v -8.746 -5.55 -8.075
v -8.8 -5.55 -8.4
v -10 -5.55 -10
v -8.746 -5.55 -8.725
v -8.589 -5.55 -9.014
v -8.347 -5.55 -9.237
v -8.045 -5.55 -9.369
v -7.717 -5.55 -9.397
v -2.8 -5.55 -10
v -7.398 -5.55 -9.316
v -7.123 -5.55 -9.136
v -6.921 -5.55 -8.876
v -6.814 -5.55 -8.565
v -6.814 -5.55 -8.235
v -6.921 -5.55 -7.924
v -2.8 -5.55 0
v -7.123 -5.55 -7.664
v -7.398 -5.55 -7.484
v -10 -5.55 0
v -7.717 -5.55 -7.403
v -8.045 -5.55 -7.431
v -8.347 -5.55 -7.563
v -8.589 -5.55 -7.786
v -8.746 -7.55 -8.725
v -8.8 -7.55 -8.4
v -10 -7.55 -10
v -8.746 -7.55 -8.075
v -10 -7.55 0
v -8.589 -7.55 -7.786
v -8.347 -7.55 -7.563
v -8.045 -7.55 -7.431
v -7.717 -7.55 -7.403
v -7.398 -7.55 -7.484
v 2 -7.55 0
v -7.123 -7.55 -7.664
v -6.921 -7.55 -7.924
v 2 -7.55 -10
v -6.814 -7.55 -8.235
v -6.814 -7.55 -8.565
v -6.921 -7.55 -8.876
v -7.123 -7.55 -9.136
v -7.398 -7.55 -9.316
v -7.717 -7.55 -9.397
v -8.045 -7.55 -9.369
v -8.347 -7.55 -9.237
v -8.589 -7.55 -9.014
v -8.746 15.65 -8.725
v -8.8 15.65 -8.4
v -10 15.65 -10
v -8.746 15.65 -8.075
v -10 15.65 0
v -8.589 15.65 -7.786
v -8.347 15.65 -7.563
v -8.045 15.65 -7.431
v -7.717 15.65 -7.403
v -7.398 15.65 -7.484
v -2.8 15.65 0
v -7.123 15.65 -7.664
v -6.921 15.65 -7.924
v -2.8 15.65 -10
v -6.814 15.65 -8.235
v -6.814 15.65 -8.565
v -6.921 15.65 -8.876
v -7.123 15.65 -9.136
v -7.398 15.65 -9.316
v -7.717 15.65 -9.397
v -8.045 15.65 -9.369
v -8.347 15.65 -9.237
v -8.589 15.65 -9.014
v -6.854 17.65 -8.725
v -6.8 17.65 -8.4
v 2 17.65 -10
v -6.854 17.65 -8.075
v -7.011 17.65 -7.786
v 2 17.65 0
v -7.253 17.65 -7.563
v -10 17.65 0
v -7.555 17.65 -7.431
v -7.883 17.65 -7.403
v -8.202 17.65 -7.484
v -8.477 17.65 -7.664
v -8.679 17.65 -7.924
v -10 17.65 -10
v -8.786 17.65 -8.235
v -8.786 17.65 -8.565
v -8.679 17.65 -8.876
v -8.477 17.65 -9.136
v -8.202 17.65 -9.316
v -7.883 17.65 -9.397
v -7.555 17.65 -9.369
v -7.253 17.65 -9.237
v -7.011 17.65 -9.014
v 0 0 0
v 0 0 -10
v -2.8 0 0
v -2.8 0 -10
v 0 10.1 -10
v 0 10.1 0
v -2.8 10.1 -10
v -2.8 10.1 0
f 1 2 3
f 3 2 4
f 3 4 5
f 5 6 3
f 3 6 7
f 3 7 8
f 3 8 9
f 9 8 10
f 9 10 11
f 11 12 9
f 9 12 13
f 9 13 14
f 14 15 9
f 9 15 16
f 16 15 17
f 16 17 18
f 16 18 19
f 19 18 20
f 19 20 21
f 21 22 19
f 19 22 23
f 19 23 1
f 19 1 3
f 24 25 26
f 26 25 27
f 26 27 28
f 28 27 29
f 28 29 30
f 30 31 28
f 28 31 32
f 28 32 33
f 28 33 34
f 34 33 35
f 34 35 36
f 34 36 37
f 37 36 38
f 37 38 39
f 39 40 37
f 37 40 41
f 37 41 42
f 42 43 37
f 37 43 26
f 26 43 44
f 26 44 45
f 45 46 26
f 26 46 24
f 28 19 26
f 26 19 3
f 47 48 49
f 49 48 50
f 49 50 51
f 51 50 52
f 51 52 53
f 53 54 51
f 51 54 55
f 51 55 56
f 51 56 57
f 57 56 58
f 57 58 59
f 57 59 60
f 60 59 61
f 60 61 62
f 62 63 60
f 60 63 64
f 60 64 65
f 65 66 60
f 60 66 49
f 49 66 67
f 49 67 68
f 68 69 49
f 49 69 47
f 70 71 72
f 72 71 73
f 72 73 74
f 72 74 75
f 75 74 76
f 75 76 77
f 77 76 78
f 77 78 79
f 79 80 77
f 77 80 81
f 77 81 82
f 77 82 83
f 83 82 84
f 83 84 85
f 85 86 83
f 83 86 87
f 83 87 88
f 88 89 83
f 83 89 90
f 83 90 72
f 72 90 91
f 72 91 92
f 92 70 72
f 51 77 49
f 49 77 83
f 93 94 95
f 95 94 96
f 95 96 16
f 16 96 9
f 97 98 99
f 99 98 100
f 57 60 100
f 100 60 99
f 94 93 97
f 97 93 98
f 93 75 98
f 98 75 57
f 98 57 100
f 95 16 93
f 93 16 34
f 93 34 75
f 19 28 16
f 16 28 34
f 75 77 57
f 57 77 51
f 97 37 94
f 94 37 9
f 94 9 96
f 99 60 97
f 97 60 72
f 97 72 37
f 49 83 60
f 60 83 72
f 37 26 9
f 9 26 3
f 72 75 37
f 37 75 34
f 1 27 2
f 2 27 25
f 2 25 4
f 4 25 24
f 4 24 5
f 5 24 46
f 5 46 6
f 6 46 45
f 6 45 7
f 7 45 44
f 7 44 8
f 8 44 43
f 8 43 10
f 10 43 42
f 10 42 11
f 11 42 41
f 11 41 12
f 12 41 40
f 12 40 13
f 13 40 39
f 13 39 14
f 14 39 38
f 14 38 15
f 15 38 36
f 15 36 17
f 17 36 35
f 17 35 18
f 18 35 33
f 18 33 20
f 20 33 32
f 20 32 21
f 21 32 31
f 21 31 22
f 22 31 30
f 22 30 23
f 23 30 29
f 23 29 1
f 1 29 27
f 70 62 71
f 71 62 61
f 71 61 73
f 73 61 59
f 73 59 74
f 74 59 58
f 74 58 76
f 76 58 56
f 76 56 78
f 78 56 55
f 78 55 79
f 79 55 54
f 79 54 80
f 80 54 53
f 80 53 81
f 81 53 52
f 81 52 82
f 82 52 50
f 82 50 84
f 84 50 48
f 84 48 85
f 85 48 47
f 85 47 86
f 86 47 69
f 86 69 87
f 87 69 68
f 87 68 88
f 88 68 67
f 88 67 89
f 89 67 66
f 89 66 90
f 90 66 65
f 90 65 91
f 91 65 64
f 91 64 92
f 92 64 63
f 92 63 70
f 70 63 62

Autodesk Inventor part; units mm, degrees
ref_plane "YZ Plane" through (0, 0, 0) normal (1, 0, 0) x (0, 1, 0)
ref_plane "XZ Plane" through (0, 0, 0) normal (0, 1, 0) x (-1, 0, 0)
ref_plane "XY Plane" through (0, 0, 0) normal (0, 0, 1) x (1, 0, 0)
sketch "Sketch1" plane through (0, 0, 0) normal (1, 0, 0) x (0, 1, 0)
  line L0 (0, 0) -> (10.1, 0)
  line L1 (10.1, 0) -> (10.1, -10)
  line L2 (10.1, -10) -> (0, -10)
  line L3 (0, -10) -> (0, 0)
  line L4 (10.1, 0) -> (15.65, 0)
  line L5 (15.65, 0) -> (15.65, -10)
  line L6 (15.65, -10) -> (10.1, -10)
  line L7 (10.1, -10) -> (10.1, 0)
  line L8 (0, 0) -> (-5.55, 0)
  line L9 (-5.55, 0) -> (-5.55, -10)
  line L10 (-5.55, -10) -> (0, -10)
  line L11 (0, -10) -> (0, 0)
  dimension "d0" = 10.1
  dimension "d1" = 10
  dimension "d2" = 5.55
  dimension "d3" = 5.55
extrude "Extrusion1" add sketch "Sketch1" along normal blind 2
extrude "Extrusion2" add sketch "Sketch1" against normal blind 2.8 contours L3 L10 L9 L8 | L4 L5 L6 L1
sketch "Sketch2" plane through (2, -5.55, 0) normal (0, 0, 1) x (1, 0, 0)
  line L0 (-4.8, 21.2) -> (0, 21.2) projected
  line L1 (0, 21.2) -> (-12, 21.2)
  line L2 (-12, 21.2) -> (-12, 23.2)
  line L3 (-12, 23.2) -> (0, 23.2)
  line L4 (0, 23.2) -> (0, 21.2)
  line L5 (0, 0) -> (0, 21.2) projected
  line L6 (0, 0) -> (-12, 0)
  line L7 (-12, 0) -> (-12, -2)
  line L8 (-12, -2) -> (0, -2)
  line L9 (0, -2) -> (0, 0)
  point P0 (-2, 5.55)
  dimension "d8" = 12
  dimension "d9" = 2
  dimension "d10" = 12
  dimension "d11" = 2
extrude "Extrusion3" add sketch "Sketch2" against normal blind 10
sketch "Sketch3" plane through (-10, 17.65, 0) normal (0, 1, 0) x (1, 0, 0)
  line L0 (0, 10) -> (7.2, 10) projected
  line L1 (0, 10) -> (3.2, 10)
  line L2 (3.2, 10) -> (3.2, 6.8)
  line L3 (3.2, 6.8) -> (0, 6.8)
  line L4 (0, 6.8) -> (0, 10)
  line L5 (3.2, 8.4) -> (2.2, 8.4)
  circle A0 centre (2.2, 8.4) radius 1
  point P0 (10, 0)
  dimension "d14" = 3.2
  dimension "d15" = 3.2
  dimension "d16" = 1
extrude "Extrusion4" cut sketch "Sketch3" against normal up to surface (25.2 mm away) contours A0
properties part number "measuring_support2"
